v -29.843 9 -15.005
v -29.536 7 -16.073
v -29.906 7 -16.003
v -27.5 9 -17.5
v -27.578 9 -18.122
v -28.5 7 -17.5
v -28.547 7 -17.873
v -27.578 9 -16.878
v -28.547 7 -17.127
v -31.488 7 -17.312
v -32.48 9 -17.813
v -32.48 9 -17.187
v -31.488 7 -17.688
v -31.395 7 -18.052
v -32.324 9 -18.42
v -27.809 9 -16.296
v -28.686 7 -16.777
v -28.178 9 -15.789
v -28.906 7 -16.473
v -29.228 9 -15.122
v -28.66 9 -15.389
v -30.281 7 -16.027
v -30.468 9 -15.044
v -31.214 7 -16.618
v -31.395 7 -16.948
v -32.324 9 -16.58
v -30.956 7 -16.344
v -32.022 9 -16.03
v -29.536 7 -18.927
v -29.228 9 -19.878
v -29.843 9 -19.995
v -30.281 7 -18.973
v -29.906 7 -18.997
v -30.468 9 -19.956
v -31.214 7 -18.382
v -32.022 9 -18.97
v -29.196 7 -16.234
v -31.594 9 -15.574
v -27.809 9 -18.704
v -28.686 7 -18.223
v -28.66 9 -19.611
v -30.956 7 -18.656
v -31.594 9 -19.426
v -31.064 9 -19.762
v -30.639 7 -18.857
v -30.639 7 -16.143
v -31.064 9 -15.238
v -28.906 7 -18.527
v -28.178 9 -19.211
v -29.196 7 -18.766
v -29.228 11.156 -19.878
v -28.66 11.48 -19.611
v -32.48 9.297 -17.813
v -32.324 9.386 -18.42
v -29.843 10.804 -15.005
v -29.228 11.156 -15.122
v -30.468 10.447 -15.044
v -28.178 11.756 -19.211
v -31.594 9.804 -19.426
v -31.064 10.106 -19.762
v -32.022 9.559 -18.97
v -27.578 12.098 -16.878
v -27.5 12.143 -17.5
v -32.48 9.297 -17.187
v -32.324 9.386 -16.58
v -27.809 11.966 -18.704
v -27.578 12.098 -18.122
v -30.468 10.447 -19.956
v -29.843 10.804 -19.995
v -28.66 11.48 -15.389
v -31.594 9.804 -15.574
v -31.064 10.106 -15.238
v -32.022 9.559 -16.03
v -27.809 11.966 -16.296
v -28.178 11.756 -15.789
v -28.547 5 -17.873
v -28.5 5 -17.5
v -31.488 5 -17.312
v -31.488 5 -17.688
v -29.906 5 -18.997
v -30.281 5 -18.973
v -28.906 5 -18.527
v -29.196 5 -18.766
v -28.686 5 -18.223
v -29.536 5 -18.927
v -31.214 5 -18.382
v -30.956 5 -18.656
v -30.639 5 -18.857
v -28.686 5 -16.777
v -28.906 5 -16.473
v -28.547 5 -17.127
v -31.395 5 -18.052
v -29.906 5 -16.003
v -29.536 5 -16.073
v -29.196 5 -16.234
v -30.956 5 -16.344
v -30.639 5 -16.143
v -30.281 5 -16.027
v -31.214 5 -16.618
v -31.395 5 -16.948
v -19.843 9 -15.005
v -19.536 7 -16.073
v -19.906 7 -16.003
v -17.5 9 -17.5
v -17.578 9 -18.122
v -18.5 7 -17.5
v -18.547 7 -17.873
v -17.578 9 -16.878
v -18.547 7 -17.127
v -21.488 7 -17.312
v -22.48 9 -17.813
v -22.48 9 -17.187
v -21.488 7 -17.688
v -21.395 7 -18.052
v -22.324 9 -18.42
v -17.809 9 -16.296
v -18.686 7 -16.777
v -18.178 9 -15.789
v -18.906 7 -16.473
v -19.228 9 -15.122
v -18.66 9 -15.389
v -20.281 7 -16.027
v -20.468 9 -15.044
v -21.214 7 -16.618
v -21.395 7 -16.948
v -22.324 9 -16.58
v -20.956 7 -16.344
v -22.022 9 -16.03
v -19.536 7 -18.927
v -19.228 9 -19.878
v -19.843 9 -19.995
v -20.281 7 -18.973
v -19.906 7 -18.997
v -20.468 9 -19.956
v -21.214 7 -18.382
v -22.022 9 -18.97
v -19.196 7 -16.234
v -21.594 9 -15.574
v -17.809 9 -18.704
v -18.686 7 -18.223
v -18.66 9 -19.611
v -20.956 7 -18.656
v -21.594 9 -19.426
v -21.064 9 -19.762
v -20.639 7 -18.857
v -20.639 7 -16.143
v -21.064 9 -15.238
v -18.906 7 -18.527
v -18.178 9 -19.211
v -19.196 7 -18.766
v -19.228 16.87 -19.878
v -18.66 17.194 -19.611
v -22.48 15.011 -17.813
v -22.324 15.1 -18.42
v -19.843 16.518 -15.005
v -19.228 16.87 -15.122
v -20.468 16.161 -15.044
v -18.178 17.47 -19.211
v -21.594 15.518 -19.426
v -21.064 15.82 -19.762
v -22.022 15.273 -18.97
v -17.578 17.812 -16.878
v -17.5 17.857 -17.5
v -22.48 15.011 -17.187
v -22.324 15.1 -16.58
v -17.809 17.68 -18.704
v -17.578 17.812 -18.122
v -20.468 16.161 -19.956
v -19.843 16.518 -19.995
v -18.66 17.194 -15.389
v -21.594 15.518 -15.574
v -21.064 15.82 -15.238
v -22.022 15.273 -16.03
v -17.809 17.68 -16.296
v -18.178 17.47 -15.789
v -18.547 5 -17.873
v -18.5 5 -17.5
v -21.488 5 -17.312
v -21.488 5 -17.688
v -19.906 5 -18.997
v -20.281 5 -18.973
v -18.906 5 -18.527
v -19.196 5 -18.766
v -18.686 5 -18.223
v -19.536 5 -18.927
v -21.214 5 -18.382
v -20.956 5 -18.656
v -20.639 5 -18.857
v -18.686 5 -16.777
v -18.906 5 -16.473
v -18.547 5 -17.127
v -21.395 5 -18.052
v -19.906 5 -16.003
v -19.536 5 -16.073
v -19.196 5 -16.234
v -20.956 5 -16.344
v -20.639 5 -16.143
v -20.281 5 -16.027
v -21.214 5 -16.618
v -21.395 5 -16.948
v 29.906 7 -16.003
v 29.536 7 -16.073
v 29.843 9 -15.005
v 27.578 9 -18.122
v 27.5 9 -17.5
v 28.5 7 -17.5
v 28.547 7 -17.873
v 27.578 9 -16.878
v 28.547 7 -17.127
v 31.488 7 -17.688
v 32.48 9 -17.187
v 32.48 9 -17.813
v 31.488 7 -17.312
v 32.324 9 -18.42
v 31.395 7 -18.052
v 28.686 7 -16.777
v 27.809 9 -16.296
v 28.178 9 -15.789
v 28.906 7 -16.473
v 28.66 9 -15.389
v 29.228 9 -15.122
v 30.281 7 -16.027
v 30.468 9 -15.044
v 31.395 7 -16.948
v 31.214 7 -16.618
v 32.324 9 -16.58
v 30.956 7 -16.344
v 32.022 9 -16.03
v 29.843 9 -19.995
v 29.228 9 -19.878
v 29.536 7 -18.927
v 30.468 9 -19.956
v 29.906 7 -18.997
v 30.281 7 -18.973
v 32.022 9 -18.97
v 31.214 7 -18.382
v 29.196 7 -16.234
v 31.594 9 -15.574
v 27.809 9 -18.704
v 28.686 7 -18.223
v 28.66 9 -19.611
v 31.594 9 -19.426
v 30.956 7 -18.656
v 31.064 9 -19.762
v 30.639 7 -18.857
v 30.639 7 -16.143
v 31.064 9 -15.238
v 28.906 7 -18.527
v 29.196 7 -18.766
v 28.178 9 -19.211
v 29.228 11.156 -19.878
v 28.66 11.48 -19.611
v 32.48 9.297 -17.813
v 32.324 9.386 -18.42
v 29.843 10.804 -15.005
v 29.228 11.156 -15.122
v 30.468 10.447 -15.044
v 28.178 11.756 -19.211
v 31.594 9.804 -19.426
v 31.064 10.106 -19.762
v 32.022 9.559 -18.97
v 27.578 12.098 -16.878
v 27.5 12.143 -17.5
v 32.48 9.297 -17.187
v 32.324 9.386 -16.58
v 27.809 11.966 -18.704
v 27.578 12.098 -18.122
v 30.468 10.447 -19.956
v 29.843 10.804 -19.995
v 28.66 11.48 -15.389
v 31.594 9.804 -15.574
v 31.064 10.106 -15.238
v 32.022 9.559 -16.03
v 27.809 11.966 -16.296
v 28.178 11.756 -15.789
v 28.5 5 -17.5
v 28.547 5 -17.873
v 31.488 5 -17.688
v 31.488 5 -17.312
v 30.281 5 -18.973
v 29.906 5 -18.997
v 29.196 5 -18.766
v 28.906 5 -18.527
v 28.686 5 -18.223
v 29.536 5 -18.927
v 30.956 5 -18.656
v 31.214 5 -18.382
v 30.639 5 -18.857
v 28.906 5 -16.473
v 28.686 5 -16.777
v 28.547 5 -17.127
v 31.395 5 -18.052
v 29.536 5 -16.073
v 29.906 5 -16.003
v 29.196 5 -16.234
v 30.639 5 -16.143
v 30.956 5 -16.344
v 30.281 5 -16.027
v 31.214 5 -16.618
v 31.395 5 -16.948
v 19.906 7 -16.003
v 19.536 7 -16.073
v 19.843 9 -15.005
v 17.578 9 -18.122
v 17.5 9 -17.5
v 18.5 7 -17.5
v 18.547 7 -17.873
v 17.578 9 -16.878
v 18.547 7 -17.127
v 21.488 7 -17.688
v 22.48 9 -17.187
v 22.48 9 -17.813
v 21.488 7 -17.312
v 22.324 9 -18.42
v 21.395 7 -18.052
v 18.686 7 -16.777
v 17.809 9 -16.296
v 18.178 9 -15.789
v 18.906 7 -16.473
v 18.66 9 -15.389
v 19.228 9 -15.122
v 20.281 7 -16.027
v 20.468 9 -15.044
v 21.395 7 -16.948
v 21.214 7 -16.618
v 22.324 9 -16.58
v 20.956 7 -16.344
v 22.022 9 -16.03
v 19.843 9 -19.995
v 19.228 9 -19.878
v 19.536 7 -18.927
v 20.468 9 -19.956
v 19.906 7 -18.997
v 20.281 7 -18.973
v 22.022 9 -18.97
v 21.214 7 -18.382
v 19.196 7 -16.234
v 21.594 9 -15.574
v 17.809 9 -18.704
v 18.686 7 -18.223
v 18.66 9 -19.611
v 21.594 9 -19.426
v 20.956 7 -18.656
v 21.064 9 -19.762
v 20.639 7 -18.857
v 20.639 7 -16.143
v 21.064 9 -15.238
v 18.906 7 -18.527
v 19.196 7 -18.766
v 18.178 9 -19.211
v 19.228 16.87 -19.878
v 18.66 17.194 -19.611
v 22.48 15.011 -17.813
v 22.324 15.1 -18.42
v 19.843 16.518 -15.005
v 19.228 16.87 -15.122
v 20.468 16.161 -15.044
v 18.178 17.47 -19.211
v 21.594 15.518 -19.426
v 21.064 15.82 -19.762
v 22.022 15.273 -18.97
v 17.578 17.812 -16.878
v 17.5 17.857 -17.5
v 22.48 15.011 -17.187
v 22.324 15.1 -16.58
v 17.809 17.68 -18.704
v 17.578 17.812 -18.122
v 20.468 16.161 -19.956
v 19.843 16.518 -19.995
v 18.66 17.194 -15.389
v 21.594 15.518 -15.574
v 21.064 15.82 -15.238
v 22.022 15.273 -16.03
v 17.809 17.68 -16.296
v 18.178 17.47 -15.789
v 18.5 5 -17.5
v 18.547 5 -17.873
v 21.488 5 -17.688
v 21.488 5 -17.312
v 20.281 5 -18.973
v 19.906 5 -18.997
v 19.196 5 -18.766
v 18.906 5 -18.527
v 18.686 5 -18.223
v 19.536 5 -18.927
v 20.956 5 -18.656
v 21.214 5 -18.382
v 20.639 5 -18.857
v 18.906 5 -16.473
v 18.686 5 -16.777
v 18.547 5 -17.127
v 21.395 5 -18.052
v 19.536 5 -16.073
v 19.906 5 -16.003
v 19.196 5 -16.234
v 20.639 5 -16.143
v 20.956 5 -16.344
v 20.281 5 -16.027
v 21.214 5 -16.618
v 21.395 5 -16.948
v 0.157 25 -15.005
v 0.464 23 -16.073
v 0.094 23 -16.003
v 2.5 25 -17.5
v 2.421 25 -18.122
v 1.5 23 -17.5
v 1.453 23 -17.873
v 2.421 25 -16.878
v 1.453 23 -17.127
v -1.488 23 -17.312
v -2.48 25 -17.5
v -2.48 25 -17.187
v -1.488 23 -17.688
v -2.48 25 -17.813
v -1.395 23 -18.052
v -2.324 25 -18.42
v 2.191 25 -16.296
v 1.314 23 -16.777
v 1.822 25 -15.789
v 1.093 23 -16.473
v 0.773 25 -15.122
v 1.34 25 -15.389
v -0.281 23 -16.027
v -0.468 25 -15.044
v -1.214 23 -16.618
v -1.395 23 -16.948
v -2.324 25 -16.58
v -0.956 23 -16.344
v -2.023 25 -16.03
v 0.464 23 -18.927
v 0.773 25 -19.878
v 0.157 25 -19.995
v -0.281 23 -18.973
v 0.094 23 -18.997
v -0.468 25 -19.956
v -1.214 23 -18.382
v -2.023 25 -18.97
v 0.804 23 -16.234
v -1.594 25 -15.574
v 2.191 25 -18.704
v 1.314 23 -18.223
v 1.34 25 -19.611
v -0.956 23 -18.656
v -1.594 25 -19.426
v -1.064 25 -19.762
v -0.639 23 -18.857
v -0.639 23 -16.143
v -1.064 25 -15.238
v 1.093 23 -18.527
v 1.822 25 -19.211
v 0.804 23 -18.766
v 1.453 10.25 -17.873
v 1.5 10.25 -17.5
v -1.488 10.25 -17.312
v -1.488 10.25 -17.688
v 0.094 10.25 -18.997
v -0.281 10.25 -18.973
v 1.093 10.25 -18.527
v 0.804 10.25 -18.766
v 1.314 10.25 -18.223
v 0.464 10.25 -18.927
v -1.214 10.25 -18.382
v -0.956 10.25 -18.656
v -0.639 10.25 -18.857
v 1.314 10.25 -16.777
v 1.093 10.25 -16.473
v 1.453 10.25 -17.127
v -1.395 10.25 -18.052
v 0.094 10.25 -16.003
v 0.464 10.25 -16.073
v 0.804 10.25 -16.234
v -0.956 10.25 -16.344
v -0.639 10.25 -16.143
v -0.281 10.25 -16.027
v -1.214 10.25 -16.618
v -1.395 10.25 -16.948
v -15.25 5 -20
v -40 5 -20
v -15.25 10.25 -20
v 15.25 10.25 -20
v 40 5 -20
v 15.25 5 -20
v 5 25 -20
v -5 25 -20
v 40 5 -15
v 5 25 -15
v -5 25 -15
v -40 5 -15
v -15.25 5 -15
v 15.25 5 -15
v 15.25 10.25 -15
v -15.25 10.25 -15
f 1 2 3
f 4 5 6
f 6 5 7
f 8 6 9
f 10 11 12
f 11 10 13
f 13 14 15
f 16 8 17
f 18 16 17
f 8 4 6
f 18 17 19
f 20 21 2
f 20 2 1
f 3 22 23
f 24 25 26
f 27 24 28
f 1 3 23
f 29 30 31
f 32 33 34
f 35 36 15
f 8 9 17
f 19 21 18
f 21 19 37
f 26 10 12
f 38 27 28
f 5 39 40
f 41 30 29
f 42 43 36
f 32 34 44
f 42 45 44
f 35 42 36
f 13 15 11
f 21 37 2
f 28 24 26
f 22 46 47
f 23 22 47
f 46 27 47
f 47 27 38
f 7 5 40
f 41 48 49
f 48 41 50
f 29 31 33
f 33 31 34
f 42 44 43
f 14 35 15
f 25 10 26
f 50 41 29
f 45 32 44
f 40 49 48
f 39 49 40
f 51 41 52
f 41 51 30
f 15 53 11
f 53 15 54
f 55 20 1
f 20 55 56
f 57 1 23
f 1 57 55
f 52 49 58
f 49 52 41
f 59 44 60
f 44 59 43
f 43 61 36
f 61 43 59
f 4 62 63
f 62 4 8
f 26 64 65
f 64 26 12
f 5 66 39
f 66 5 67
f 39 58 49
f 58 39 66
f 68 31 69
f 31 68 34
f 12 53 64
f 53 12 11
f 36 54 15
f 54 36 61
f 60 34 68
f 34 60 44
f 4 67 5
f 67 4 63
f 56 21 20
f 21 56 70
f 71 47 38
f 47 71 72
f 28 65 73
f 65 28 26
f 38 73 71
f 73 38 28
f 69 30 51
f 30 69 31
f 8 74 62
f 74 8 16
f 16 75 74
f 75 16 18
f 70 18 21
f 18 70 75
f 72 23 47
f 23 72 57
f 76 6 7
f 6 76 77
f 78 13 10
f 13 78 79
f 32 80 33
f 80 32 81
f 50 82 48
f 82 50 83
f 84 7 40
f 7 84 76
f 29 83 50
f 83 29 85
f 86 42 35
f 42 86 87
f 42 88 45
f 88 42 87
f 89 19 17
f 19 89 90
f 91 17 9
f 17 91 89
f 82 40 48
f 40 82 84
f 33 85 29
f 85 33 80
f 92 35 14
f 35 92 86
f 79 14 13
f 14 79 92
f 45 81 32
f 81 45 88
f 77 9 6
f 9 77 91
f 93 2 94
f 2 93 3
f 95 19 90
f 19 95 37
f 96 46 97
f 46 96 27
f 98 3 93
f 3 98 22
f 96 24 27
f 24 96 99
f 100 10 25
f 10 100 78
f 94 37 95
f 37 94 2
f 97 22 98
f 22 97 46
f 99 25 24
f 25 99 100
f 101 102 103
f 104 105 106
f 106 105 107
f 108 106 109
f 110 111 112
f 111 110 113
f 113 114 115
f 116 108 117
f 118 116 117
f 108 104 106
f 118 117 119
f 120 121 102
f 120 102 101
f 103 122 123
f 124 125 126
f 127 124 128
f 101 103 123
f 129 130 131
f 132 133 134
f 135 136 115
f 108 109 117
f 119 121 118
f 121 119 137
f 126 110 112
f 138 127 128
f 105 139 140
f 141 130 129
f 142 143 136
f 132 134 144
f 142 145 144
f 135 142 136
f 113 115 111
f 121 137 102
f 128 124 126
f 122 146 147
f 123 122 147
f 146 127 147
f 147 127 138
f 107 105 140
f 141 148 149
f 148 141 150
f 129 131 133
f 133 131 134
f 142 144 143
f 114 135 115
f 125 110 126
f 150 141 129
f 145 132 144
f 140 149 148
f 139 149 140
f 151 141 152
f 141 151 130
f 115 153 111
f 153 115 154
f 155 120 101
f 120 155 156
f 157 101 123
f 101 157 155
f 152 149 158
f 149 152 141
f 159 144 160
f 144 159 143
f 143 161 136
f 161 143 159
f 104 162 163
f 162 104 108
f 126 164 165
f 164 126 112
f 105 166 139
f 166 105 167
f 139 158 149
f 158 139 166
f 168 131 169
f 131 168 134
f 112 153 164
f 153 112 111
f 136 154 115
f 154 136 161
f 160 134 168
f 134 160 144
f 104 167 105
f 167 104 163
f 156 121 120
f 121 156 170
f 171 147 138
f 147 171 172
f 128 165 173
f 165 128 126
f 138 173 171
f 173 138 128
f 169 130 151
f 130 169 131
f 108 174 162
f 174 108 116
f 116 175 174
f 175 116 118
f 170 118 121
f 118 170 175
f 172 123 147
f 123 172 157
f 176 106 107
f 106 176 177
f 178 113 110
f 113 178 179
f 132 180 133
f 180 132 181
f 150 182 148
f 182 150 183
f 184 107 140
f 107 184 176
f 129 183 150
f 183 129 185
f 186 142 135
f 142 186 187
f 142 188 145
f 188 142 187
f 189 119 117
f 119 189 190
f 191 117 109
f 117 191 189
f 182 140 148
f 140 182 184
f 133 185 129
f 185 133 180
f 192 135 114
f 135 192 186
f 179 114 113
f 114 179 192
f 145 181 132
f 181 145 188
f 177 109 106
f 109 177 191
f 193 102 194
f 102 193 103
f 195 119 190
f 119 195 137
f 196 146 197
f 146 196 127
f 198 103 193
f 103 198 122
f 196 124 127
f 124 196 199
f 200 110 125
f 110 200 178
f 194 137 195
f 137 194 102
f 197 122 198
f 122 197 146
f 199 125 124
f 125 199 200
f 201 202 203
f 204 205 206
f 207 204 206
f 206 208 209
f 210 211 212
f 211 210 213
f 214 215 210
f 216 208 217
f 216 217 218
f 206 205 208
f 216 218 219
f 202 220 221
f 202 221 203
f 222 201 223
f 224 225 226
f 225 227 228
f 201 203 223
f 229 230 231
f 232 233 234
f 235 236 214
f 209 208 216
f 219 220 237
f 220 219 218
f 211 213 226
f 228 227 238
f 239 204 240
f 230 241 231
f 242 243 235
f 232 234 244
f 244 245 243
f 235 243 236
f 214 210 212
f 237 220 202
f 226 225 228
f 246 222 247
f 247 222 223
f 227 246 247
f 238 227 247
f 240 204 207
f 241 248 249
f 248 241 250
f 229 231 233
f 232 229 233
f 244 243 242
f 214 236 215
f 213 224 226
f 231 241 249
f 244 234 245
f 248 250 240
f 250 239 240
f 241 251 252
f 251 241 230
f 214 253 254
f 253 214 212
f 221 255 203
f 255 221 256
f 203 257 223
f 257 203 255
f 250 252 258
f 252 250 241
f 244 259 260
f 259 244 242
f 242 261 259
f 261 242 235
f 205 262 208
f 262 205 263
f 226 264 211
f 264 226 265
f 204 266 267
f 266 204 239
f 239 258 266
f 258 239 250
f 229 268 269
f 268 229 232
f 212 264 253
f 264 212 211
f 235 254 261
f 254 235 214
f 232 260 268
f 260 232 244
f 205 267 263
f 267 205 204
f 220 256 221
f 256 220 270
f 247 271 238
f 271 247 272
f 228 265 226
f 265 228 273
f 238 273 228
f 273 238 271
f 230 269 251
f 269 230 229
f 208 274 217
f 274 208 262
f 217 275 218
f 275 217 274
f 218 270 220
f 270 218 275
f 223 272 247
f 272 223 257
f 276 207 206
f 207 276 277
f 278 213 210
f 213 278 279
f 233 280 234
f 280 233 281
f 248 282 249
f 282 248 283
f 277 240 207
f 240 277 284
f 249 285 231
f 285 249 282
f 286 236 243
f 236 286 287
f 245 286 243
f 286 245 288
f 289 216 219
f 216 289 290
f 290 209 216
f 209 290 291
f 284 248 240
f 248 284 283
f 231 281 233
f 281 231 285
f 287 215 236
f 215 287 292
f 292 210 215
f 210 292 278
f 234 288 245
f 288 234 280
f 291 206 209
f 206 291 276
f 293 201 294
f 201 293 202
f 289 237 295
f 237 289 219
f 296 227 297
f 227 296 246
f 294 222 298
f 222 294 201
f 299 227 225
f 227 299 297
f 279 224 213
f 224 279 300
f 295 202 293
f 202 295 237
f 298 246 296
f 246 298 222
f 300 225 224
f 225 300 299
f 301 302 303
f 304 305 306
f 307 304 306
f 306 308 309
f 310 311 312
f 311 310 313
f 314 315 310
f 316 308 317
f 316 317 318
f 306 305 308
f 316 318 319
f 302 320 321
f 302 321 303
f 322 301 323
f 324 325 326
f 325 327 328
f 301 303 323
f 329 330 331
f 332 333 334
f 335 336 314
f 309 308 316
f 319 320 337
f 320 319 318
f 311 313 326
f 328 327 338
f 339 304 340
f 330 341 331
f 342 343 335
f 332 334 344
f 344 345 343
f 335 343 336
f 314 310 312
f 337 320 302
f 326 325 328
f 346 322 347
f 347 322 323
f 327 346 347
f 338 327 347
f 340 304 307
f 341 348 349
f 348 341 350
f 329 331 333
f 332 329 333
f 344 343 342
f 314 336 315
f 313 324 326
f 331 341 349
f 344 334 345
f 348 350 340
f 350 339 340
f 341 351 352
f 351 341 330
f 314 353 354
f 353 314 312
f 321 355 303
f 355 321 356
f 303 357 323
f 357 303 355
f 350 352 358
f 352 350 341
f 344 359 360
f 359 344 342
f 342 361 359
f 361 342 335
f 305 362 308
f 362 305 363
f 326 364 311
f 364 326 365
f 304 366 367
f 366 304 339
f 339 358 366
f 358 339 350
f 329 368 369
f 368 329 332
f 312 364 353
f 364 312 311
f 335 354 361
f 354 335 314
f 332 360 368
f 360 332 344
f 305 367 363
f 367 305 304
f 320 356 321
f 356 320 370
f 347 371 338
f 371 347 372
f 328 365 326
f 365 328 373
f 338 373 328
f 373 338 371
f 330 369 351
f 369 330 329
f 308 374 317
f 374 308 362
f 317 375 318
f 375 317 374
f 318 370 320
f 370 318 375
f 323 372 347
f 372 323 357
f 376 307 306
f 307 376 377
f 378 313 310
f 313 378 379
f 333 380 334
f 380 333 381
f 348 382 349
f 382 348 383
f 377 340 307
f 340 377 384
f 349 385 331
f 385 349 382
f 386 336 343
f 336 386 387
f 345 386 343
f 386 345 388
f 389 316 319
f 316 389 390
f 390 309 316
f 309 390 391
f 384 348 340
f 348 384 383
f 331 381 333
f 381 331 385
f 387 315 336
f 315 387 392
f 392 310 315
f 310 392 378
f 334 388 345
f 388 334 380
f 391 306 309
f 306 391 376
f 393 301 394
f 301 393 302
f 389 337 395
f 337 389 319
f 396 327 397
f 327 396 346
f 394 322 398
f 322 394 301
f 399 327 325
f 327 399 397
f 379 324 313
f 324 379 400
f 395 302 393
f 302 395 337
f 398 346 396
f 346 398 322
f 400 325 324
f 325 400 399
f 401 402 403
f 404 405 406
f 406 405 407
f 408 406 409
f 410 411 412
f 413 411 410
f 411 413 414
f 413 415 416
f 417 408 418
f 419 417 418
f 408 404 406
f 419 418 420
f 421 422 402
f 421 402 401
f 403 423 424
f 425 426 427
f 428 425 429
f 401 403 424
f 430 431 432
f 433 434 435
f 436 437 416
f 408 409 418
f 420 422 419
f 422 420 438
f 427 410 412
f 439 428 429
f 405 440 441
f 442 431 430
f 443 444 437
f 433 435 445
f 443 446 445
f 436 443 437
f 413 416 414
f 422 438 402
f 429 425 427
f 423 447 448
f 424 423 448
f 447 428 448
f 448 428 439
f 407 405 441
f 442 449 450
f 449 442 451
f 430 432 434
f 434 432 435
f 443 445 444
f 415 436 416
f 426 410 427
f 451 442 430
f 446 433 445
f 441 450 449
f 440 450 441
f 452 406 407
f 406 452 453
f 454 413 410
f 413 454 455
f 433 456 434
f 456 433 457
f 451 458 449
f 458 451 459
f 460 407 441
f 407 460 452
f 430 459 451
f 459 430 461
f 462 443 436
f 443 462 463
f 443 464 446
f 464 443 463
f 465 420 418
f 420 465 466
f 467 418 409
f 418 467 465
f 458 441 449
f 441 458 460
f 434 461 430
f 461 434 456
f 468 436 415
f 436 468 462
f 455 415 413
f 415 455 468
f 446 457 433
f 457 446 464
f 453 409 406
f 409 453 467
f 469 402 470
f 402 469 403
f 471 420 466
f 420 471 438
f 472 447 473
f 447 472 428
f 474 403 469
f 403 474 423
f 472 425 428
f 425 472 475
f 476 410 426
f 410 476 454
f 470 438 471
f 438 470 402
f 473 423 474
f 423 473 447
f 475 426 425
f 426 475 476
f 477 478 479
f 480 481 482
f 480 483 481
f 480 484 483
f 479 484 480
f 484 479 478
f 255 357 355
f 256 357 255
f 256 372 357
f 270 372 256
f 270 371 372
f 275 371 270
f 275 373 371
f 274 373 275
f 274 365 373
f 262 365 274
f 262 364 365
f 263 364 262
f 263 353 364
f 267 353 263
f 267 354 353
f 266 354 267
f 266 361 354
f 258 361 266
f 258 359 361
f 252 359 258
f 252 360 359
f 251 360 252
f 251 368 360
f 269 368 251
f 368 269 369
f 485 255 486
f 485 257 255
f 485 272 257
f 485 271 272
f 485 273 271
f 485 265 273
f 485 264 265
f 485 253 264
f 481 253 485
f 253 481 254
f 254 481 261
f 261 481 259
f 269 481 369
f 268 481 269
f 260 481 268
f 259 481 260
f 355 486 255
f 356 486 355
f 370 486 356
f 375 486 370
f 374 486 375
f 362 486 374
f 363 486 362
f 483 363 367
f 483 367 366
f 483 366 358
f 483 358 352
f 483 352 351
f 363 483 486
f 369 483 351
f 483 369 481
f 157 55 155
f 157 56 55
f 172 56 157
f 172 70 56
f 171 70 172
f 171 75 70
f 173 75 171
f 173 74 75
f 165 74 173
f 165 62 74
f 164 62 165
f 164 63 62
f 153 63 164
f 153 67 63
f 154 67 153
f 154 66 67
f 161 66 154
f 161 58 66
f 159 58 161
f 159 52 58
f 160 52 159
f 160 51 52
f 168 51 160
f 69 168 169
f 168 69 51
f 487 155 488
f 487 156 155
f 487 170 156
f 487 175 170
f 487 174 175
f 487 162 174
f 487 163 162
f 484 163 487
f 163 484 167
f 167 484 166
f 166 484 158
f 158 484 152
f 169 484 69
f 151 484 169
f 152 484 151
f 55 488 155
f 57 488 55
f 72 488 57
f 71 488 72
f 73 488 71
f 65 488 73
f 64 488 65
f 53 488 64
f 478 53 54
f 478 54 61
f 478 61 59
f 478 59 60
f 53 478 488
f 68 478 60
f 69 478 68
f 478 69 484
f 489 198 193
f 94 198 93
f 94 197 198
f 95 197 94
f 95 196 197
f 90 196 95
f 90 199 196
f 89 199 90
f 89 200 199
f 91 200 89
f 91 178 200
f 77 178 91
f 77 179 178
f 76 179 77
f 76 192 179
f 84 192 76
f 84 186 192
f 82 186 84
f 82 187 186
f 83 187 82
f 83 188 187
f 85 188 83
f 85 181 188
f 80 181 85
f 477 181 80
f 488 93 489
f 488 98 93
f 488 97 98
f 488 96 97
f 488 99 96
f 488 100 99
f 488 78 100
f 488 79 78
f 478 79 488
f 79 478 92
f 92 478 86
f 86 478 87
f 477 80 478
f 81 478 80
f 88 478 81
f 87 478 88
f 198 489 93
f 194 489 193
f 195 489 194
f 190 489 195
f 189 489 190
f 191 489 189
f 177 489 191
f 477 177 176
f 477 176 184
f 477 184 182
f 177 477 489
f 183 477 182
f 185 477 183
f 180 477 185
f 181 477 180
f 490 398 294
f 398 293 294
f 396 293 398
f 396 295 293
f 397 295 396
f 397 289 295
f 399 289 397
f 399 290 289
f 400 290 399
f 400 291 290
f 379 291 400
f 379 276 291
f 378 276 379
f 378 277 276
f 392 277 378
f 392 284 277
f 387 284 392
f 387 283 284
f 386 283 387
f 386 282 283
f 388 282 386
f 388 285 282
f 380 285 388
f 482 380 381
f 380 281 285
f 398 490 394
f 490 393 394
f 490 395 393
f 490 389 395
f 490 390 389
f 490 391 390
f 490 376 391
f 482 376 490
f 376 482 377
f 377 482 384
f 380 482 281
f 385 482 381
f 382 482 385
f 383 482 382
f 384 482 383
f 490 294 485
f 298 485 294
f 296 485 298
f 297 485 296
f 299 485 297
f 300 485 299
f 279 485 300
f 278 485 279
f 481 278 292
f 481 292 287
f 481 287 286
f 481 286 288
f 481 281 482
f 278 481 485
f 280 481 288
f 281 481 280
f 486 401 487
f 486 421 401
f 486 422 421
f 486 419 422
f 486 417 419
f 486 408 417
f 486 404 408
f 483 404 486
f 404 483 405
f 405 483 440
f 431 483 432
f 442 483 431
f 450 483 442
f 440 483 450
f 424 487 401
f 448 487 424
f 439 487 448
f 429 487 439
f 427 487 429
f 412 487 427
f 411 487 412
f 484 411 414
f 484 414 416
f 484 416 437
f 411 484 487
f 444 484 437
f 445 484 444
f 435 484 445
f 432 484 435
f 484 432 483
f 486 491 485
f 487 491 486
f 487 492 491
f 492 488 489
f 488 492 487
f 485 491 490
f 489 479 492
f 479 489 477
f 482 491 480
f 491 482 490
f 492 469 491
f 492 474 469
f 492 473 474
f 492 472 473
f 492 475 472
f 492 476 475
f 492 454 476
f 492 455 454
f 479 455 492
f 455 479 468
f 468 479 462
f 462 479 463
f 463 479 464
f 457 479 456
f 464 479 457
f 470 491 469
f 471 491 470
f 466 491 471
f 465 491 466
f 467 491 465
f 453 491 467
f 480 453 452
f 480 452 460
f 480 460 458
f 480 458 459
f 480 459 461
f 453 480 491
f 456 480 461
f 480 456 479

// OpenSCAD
// file: openscad-extra/src/countersink.scad
/*
Countersink depression for tapered screw heads.
*/

module make_countersink(d1=0, d2=0, h=0, outer=10, inner=0, $fn=25){
    /*
    d1 = shaft diameter
    d2 = head diameter
    h = height of taper
    outer = height of head mass
    inner = height of shaft mass, including taper
    */
    default_taper_height = 2;
    d1 = d1 ? d1 : 2.5;
    d2 = d2 ? d2 : 5;
    h = h ? h : default_taper_height;
    inner = (inner ? inner : 10) - default_taper_height;
    
    translate([0, 0, -default_taper_height/2])
    union(){
        
        // taper
        cylinder(d1=d1, d2=d2, h=h, center=true, $fn=$fn);
    
        // big top
    	translate([0, 0, h/2])
    	cylinder(d=d2, h=outer, center=false, $fn=$fn);
        
    	// lower bottom
    	translate([0, 0, -h/2-inner])
    	cylinder(d=d1, h=inner, center=false, $fn=$fn);
	}
}

make_countersink(inner=10);

color("blue")
translate([0,2,0])
cylinder(d=2.5, h=20, center=true, $fn=100);
// file: foot_mock.scad
use <openscad-extra/src/countersink.scad>;

module foot_mock(){
    difference(){
        union(){
            cube([80, 10, 5], center=true);
            
            if(0)
            difference(){
                color("blue")
                scale([1,1,.6])
                translate([0,0,0])
                rotate([90,0,0])
                cylinder(d=80, h=10, center=true, $fn=50);
                
                // cylinder flat cutout
                if(0)
                translate([0,0,-100/2+5/2])
                cube([100, 100, 100], center=true);
            }
                    
            // pivot hub mass
            for(j=[0:1])
            mirror([j,0,0])
            hull()
            for(i=[0:1])
            translate([(-30/2-10/2/2-.5),0,5/2+5*i])
            rotate([0,90,0])
            cylinder(d=10, h=5, center=true, $fn=50);
        }
        
        // slot cutout
        if(0)
        translate([0,0,50/2+5/2-0.25])
        cube([100, 5.5, 50], center=true);

    
        // bottom mount holes
        color("red")
        for(i=[0:7])
        translate([10*i-35,0,-7])
        rotate([180,0,0])
        make_countersink(d1=2.5, d2=5, inner=10);
        
        // side mount holes
        color("red")
        for(i=[0:6])
        translate([10*i-30,-10,0])
        rotate([90,0,0])
        make_countersink(d1=2.5, d2=5, inner=20);
        
        // pivot holes
        color("red")
        for(i=[0:1])
        mirror([i,0,0])
        translate([-20.5,0,5/2+5])
        rotate([0,-90,0])
        make_countersink(d1=3, d2=5, inner=20);
    }
    
    // mounting holes
    if(0)
    color("red")
    for(i=[0:2])
    translate([11.2*i-11.2,5,17.5+10])
    rotate([-90,0,0])
    make_countersink(d1=2.5, d2=5, inner=20);
    
    
    
    if(0)
    translate([0,10,50/2+5/2])
    cube([30, 20, 50], center=true);
    
}

module foot_mock_ankle(){
    
    difference(){
        
        // main mass
        if(1)
        hull()
        for(i=[0:1])
        translate([0,0,(20+2.5)*i])
        rotate([0,90,0])
        cylinder(d=10-0.5, h=30, center=true, $fn=50);
        
        // mount axle hole
        rotate([0,90,0])
        cylinder(d=2.5, h=100, center=true, $fn=50);
        
        // mounting holes
        translate([0,0,-10+2.5])
        color("red")
        for(i=[0:2])
        translate([11.2*i-11.2, 5-.2, 17.5+10])
        rotate([-90,0,0])
        make_countersink(d1=2.5, d2=5, inner=20);
        
        // slot cutout
        if(1)
        translate([0,0,50/2+5/2+5/2])
        cube([100, 5.5, 50], center=true);
        
    }// end diff
}

module foot_mock_toe(major_length=80, minor_length=10, width=20, height=5){
    difference(){
        //color("red")
        linear_extrude(height=height)
        polygon([[-major_length/2,0], [major_length/2,0], [minor_length/2,width], [-minor_length/2,width]]);
        
        translate([0,5/2,5/2])
        cube([30.5,5.5,5.5], center=true);
        
        // side mount holes
        for(j=[0:1])
        mirror([j,0,0])
        color("red")
        for(i=[0:1])
        translate([10*i-30,4,5/2])
        rotate([-90,0,0])
        make_countersink(d1=3, d2=5, inner=20);
    
        // middle mount hole
        color("red")
        translate([0,20,5/2])
        rotate([-90,0,0])
        make_countersink(d1=3, d2=5, inner=20);

    }
}

module foot_mock_toe_spring(thickness=.4*2, length=20){

    difference(){
        union(){
            translate([0,thickness/2,length/2])
            cube([30, thickness, length], center=true);

            translate([0,5/2,5/2])
            cube([30, 5, 5], center=true);
        }
        
        // side mount holes
        color("red")
        for(i=[0:6])
        translate([10*i-30,5,5/2])
        rotate([-90,0,0])
        make_countersink(d1=3, d2=5, inner=20);
    }
}

if(1)
color("orange")
translate([0,0,10])
rotate([0,-30+4,0])
translate([0,0,50-15])
rotate([0,90,0])
rotate([90,0,0])
import("printable/leg_lower.stl");

translate([0,0,-5/2-15])
foot_mock();

translate([0,0,-10])
foot_mock_ankle();

translate([0,5,-20])
foot_mock_toe();

translate([0,5,-20])
foot_mock_toe_spring();
// main file
use <foot_mock.scad>;

if(0)
translate([0,0,-5/2-15])
foot_mock();

if(0)
translate([0,0,-10])
foot_mock_ankle();

if(1)
translate([0,5,-20])
foot_mock_toe();

if(0)
translate([0,5,-20])
foot_mock_toe_spring();
